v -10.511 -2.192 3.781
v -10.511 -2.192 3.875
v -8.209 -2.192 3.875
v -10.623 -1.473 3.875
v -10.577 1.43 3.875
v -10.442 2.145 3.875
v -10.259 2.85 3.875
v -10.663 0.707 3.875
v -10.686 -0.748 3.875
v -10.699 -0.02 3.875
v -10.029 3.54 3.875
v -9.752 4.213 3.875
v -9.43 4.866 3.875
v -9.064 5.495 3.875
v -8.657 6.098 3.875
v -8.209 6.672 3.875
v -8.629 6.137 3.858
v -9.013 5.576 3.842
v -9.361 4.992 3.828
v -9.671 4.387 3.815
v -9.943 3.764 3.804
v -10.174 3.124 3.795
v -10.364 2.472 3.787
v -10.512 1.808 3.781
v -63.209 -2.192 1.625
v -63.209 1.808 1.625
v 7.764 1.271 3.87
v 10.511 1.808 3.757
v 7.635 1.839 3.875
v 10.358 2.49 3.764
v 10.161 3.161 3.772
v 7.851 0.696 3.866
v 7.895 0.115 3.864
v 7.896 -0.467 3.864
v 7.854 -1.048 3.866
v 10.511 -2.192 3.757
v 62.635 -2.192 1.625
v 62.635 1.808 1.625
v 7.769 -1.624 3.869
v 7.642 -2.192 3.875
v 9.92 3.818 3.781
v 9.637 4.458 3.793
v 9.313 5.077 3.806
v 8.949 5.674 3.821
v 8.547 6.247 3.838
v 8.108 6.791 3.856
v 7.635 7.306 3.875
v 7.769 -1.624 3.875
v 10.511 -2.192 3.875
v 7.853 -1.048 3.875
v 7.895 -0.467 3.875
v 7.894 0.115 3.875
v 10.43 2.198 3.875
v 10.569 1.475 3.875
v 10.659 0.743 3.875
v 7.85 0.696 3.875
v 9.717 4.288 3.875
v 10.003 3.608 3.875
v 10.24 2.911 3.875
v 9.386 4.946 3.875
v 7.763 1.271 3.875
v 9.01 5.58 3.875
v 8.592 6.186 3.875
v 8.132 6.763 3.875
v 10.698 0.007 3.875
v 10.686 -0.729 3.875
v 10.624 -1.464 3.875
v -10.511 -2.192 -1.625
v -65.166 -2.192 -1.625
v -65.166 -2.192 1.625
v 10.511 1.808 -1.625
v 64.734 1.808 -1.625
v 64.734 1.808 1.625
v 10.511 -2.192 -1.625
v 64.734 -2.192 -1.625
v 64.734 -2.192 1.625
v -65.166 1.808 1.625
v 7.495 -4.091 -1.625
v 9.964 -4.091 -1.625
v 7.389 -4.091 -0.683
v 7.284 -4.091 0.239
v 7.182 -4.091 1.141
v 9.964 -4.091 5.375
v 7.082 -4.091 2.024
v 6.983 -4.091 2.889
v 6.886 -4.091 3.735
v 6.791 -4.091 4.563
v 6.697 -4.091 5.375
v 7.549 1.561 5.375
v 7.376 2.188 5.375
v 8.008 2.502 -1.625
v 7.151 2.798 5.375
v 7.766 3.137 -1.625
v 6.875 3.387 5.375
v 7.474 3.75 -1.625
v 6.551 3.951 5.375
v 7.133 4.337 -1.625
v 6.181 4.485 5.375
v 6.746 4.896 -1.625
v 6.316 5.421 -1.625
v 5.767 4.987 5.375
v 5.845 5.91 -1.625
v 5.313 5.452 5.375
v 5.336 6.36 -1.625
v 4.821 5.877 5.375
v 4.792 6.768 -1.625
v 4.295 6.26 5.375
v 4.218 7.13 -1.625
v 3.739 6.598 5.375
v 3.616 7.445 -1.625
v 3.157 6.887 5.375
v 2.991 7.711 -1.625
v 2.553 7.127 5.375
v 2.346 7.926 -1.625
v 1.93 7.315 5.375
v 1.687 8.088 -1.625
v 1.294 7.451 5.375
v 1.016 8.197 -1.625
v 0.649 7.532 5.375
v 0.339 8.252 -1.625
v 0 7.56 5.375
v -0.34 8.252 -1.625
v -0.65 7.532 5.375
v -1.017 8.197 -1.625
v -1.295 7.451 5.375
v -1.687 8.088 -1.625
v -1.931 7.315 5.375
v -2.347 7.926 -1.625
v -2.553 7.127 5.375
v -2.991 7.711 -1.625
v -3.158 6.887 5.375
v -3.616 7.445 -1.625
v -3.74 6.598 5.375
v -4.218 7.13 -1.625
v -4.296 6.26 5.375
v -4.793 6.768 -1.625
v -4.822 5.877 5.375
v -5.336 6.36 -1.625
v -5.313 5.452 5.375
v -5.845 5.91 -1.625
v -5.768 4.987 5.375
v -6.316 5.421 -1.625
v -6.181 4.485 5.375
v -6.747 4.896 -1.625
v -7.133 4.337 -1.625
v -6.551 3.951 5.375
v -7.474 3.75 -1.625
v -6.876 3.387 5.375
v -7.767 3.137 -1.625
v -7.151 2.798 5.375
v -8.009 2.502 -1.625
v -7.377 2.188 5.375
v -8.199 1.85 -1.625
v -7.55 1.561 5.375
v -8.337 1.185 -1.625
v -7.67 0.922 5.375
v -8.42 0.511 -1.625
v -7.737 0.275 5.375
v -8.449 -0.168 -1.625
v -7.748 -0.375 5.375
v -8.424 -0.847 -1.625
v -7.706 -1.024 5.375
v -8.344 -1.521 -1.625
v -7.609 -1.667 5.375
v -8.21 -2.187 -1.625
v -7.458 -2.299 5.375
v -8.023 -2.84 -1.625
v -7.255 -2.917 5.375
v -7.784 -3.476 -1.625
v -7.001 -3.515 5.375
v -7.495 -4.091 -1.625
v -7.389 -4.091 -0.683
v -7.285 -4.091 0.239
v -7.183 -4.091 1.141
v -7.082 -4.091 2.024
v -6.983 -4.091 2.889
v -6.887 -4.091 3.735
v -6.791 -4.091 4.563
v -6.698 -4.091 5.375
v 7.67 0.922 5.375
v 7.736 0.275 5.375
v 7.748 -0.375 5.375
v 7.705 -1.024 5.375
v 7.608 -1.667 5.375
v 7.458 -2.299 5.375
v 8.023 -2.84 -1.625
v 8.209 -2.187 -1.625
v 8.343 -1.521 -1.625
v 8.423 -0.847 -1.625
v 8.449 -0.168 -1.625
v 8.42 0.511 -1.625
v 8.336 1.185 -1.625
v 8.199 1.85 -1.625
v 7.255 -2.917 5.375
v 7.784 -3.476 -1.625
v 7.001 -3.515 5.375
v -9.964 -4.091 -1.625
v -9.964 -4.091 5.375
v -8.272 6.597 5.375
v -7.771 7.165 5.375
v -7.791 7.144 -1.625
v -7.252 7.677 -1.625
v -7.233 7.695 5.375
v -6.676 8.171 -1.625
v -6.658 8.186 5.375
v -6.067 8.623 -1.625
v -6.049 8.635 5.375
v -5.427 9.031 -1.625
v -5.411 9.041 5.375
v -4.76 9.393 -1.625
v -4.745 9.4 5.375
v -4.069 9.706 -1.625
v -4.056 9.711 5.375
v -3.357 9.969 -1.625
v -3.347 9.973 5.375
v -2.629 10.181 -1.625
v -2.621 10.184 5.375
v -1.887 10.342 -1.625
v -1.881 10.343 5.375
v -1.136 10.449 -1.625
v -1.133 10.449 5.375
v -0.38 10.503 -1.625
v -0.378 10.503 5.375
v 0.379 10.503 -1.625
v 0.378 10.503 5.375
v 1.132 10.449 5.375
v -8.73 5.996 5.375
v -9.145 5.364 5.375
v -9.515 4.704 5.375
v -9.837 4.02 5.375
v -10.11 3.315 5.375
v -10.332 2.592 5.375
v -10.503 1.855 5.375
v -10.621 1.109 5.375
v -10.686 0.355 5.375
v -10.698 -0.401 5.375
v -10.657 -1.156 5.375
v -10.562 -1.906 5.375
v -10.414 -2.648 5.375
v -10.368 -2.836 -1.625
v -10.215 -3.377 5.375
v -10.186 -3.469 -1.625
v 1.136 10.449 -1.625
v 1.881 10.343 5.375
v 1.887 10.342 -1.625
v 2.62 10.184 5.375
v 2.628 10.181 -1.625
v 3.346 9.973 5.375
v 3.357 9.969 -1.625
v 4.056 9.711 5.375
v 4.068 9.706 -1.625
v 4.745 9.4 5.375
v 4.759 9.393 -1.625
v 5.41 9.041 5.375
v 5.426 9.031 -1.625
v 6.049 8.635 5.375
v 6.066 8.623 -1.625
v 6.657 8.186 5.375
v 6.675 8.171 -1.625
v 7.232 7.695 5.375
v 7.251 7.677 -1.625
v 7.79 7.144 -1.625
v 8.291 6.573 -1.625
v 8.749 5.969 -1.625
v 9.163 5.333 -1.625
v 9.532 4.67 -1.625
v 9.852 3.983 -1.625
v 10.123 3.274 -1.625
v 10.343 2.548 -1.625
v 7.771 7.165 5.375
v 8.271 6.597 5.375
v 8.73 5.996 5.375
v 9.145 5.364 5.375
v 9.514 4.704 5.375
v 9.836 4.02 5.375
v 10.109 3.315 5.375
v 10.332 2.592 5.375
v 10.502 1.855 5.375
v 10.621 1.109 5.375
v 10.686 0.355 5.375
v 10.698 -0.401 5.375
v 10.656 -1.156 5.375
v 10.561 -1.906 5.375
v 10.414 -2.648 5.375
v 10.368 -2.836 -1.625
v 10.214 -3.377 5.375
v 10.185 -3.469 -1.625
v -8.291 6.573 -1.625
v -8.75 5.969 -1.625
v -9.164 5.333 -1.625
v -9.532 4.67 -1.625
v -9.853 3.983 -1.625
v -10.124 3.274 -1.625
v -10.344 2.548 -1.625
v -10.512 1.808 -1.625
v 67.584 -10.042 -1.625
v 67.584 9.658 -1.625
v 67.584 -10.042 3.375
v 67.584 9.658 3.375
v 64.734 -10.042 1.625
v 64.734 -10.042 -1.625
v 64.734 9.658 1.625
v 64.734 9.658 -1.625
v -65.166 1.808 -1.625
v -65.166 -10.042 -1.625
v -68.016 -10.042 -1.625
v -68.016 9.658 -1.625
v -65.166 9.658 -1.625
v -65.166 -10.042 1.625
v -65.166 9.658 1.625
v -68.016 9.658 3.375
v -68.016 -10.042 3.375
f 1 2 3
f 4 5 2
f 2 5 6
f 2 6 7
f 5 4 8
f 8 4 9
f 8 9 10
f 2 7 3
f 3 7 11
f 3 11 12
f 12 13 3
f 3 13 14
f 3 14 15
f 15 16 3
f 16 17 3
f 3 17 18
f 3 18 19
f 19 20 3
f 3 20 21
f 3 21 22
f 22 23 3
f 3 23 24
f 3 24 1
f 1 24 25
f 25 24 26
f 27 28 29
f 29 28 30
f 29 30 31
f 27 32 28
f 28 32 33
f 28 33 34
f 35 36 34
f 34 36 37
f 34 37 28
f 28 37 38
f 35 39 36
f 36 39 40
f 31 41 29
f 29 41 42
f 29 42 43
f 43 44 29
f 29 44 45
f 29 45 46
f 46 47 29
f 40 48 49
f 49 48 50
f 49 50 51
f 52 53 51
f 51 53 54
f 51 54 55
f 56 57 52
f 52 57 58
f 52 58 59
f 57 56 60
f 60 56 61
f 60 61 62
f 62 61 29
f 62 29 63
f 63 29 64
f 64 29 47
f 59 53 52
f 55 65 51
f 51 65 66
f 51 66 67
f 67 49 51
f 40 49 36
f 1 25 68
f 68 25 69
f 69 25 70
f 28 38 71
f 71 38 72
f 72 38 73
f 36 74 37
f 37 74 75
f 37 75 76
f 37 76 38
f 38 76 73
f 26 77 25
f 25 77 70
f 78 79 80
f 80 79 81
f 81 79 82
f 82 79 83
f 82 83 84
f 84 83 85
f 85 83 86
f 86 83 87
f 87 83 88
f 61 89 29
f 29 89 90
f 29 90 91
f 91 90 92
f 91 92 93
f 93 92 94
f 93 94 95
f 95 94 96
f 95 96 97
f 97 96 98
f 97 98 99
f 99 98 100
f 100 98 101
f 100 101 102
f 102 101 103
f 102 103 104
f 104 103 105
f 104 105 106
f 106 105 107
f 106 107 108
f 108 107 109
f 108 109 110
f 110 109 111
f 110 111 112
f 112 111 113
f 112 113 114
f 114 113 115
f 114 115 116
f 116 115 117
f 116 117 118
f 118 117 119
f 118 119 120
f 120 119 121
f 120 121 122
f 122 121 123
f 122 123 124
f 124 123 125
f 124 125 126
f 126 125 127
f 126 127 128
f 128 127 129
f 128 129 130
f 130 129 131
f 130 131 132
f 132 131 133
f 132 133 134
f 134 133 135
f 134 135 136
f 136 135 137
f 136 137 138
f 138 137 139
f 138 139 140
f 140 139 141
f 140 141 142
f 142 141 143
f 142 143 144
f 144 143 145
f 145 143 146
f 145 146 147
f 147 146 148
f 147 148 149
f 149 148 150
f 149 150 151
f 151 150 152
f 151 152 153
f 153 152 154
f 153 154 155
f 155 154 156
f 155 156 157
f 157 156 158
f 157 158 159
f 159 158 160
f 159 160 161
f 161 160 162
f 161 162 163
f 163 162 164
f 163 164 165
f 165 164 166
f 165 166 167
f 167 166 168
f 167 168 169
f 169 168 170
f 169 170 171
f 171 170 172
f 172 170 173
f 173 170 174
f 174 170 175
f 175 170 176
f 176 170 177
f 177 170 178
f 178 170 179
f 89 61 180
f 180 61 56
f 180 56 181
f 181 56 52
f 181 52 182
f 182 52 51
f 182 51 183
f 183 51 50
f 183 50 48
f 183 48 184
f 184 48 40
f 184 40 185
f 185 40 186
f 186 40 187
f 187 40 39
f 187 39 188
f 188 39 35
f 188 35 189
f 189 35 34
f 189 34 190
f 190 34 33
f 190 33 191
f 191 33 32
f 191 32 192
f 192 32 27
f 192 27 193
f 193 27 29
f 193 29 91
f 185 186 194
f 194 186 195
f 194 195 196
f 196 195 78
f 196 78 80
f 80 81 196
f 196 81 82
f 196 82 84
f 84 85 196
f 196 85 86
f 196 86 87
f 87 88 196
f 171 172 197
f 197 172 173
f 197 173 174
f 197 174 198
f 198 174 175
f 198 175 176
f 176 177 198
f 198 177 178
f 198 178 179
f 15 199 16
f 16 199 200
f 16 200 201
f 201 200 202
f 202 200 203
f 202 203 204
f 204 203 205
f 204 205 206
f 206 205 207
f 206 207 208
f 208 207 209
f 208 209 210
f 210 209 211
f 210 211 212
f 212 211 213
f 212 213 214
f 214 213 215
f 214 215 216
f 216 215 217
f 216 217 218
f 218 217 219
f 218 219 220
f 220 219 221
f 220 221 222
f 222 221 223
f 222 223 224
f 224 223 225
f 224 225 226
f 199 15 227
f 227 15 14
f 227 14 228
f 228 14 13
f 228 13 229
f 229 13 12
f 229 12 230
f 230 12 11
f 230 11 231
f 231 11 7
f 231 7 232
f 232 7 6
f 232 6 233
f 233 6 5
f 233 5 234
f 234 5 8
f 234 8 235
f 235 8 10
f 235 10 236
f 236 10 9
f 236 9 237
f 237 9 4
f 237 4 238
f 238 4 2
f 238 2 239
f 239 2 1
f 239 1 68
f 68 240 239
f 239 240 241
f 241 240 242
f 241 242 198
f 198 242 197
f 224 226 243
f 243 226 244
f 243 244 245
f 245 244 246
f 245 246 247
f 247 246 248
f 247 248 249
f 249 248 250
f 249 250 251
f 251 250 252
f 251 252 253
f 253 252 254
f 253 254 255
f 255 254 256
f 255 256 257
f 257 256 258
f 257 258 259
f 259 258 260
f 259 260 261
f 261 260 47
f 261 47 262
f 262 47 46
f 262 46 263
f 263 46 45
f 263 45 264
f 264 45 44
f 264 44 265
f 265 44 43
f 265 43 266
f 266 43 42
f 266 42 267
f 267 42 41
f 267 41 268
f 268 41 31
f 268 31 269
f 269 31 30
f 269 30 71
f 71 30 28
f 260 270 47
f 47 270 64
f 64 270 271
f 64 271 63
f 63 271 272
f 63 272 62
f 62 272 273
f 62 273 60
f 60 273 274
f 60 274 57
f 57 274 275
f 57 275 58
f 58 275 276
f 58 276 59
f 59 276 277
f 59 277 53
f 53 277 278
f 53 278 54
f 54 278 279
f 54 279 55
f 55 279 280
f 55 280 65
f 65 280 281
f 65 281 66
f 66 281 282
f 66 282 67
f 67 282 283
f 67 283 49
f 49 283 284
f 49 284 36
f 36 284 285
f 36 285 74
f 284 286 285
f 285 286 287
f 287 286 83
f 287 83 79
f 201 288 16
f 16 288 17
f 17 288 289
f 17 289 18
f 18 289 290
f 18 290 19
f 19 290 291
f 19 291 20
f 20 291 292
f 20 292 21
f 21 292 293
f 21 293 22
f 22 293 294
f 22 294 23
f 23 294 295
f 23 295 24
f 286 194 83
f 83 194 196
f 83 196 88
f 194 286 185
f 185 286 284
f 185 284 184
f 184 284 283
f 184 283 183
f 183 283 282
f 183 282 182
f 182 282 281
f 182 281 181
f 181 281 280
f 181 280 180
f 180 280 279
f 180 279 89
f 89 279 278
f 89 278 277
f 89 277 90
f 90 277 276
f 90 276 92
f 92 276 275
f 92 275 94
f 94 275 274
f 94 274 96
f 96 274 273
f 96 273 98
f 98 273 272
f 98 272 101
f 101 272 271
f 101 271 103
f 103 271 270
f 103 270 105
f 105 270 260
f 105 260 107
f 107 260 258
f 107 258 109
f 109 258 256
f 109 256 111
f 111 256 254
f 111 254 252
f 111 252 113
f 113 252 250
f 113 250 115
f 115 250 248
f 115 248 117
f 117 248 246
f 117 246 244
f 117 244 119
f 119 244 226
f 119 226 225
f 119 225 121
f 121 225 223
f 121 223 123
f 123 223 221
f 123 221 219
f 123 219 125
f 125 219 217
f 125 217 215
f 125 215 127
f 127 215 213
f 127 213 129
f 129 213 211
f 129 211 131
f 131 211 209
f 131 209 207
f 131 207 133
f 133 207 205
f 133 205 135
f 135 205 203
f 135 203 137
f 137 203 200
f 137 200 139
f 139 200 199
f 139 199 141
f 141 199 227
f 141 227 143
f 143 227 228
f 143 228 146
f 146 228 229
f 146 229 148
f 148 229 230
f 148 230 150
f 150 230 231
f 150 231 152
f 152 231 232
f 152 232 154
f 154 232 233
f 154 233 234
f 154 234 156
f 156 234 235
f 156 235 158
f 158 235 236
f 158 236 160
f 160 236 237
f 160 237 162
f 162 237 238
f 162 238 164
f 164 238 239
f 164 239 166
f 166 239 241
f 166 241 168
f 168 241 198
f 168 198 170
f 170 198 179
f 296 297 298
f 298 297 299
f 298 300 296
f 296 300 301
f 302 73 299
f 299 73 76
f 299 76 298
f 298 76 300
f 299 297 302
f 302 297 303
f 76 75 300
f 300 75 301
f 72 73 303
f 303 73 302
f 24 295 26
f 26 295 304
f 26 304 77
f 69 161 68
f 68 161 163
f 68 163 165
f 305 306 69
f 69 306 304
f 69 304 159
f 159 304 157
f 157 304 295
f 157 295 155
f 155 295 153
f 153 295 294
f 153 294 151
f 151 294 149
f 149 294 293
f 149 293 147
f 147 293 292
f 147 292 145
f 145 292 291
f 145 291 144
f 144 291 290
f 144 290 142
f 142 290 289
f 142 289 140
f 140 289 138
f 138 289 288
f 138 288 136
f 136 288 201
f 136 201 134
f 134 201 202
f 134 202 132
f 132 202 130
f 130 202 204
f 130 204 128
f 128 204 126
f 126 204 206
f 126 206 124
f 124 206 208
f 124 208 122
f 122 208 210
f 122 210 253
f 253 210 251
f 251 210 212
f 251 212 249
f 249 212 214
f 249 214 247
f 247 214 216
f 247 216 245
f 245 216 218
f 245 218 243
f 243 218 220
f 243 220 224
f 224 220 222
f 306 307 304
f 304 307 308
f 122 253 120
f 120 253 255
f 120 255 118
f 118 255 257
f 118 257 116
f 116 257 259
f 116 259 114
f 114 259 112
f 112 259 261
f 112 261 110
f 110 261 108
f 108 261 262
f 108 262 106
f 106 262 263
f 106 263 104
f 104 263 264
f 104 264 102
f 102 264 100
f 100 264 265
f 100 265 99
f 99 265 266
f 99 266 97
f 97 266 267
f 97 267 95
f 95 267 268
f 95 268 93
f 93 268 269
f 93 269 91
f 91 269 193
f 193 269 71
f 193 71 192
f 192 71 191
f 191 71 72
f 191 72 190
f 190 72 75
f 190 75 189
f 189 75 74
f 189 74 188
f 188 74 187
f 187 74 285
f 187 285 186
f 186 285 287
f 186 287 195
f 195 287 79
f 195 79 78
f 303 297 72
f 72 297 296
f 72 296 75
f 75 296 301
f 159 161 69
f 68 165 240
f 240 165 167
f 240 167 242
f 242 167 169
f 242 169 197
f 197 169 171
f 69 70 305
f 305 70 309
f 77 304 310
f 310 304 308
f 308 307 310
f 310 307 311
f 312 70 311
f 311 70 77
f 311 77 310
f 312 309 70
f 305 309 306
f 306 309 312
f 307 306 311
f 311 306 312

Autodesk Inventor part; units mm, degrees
ref_plane "YZ Plane" through (0, 0, 0) normal (1, 0, 0) x (0, 1, 0)
ref_plane "XZ Plane" through (0, 0, 0) normal (0, 1, 0) x (-1, 0, 0)
ref_plane "XY Plane" through (0, 0, 0) normal (0, 0, 1) x (1, 0, 0)
sketch "Skizze1" plane through (0, 0, 0) normal (0, 0, 1) x (1, 0, 0)
  line L0 (-68.016, 1.808) -> (67.584, 1.808)
  line L1 (67.584, 1.808) -> (67.584, -2.192)
  line L2 (67.584, -2.192) -> (-68.016, -2.192)
  line L3 (-68.016, -2.192) -> (-68.016, 1.808)
  line L4 (-68.016, 1.808) -> (67.584, -2.192) construction
  line L5 (67.584, 1.808) -> (-68.016, -2.192) construction
  point P0 (0, 0)
  point P1 (-0.216, -0.192)
  point P2 (-0.216, -0.192)
  dimension "d0" = 135.6
  dimension "d1" = 4
extrude "Extrusion1" add sketch "Skizze1" along normal mid plane 3.25
ref_plane "Arbeitsebene1" through (-68.016, -0.192, 1.625) normal (0, -1, 0) x (1, 0, 0)
sketch "Skizze2" plane through (-68.016, -0.192, 1.625) normal (0, -1, 0) x (1, 0, 0)
  line L0 (0, -3.25) -> (0, 0) projected
  line L1 (0, -3.25) -> (135.6, -3.25) projected
  line L2 (0, 0) -> (2.85, 0)
  line L3 (2.85, 0) -> (2.85, -3.25)
  line L4 (2.85, -3.25) -> (0, -3.25)
  line L5 (0, -3.25) -> (0, 0)
  line L6 (0, 0) -> (0, 1.75)
  line L7 (0, 1.75) -> (2.85, 0)
  line L8 (135.6, -3.25) -> (135.6, 0) projected
  line L9 (135.6, 0) -> (132.75, 0)
  line L10 (132.75, 0) -> (132.75, -3.25)
  line L11 (132.75, -3.25) -> (135.6, -3.25)
  line L12 (135.6, -3.25) -> (135.6, 0)
  line L13 (135.6, 0) -> (135.6, 1.75)
  line L14 (135.6, 1.75) -> (132.75, 0)
  point P0 (68.016, -1.625)
  dimension "d4" = 2.85
  dimension "d5" = 1.75
  dimension "d6" = 2.85
extrude "Extrusion2" add sketch "Skizze2" along normal mid plane 19.7
sketch "Skizze3" plane through (0, 0, 1.625) normal (0, 0, 1) x (1, 0, 0)
  circle A0 centre (0, 0) radius 9.95
  dimension "d9" = 19.9
extrude "Extrusion3" cut sketch "Skizze3" against normal through all
sketch "Skizze4" plane through (0, 0, -1.625) normal (0, 0, -1) x (-1, 0, 0)
  line L0 (0.0981, 0.0423) -> (6.2481, 0.0423) construction
  circle A0 centre (0.0003, -0.1906) radius 7.9
  circle A1 centre (0.0003, -0.1906) radius 10.7
  line L1 (-24.5997, -4.0906) -> (24.6003, -4.0906)
  point P0 (-11.2287, 0.0116)
  point P1 (11.2713, 0.0116)
  point P2 (0.0213, -0.1938)
  point P3 (6.8705, -4.0906)
  point P4 (9.9642, -4.0906)
  point P5 (-9.9636, -4.0906)
  point P6 (-6.8699, -4.0906)
  dimension "d27" = 2.8
  dimension "d28" = 15.8
  dimension "d29" = 3.9
extrude "Extrusion4" add sketch "Skizze4" against normal blind 7 contours A0 L1 A1 picked at (9.6695, 0.6375)
sketch "Skizze5" plane through (0, 0, 1.625) normal (0, 0, 1) x (1, 0, 0)
  line L0 (-10.512, 1.808) -> (-65.166, 1.808) projected
  line L1 (-10.5115, -2.192) -> (-65.166, -2.192) projected
  line L2 (-10.2094, 1.808) -> (-63.2094, 1.808)
  line L3 (-63.2094, 1.808) -> (-63.2094, -2.192)
  line L4 (-63.2094, -2.192) -> (-10.2094, -2.192)
  line L5 (-10.2094, -2.192) -> (-10.2094, 1.808)
  line L6 (10.5109, -2.192) -> (64.734, -2.192) projected
  line L7 (9.6345, 1.808) -> (62.6345, 1.808)
  line L8 (62.6345, 1.808) -> (62.6345, -2.192)
  line L9 (62.6345, -2.192) -> (9.6345, -2.192)
  line L10 (9.6345, -2.192) -> (9.6345, 1.808)
  point P0 (0, 0)
  point P1 (-8.6889, 1.808)
  point P2 (-8.6001, -2.192)
  point P3 (8.6889, 1.808)
  point P4 (8.6001, -2.192)
  point P5 (8.251, -2.192)
  point P6 (-13.2094, -2.192)
  point P7 (-63.2094, 1.808)
  point P8 (62.6345, -2.192)
  point P9 (-7.3561, 1.808)
  point P10 (-7.2509, -2.192)
  point P11 (7.2509, -2.192)
  dimension "d17" = 53
  dimension "d18" = 53
extrude "Extrusion5" add sketch "Skizze5" along normal blind 2.25
sketch "Skizze6" plane through (-65.166, -2.192, -1.625) normal (0, -1, 0) x (1, 0, 0)
  line L0 (1.9566, 5.5) -> (54.6545, 5.5) projected
  line L1 (1.9566, 5.5) -> (56.9566, 5.5)
  line L2 (56.9566, 5.5) -> (56.9566, 3.25)
  line L3 (56.9566, 3.25) -> (1.9566, 3.25)
  line L4 (1.9566, 3.25) -> (1.9566, 5.5)
  line L5 (56.9566, 5.5) -> (1.9566, 3.25)
  line L6 (127.8005, 3.25) -> (127.8005, 5.5) projected
  line L7 (127.8005, 5.5) -> (72.8005, 5.5)
  line L8 (72.8005, 5.5) -> (72.8005, 3.25)
  line L9 (72.8005, 3.25) -> (127.8005, 3.25)
  line L10 (127.8005, 3.25) -> (127.8005, 5.5)
  line L11 (72.8005, 5.5) -> (127.8005, 3.25)
  point P0 (65.166, 1.625)
  point P1 (56.5659, 5.5)
  point P2 (54.0951, 5.5)
  point P3 (56.5659, 5.5)
  point P4 (54.0951, 5.5)
  dimension "d21" = 55
  dimension "d22" = 2.25
  dimension "d23" = 55
  dimension "d26" = 2.25
extrude "Extrusion6" cut sketch "Skizze6" against normal through all contours L0 L1 L5 L4 | L11 L7 L6
draft "Flächenverjüngung2" angle 5.7 pull direction (0, 0, -1) faces at (7.1819, -3.4809, 2.5416) fixed edges at (7.642, -2.192, 3.8748) (7.8997, -0.176, 3.875)
properties part number "2024_08_28_Holder_NS14"
